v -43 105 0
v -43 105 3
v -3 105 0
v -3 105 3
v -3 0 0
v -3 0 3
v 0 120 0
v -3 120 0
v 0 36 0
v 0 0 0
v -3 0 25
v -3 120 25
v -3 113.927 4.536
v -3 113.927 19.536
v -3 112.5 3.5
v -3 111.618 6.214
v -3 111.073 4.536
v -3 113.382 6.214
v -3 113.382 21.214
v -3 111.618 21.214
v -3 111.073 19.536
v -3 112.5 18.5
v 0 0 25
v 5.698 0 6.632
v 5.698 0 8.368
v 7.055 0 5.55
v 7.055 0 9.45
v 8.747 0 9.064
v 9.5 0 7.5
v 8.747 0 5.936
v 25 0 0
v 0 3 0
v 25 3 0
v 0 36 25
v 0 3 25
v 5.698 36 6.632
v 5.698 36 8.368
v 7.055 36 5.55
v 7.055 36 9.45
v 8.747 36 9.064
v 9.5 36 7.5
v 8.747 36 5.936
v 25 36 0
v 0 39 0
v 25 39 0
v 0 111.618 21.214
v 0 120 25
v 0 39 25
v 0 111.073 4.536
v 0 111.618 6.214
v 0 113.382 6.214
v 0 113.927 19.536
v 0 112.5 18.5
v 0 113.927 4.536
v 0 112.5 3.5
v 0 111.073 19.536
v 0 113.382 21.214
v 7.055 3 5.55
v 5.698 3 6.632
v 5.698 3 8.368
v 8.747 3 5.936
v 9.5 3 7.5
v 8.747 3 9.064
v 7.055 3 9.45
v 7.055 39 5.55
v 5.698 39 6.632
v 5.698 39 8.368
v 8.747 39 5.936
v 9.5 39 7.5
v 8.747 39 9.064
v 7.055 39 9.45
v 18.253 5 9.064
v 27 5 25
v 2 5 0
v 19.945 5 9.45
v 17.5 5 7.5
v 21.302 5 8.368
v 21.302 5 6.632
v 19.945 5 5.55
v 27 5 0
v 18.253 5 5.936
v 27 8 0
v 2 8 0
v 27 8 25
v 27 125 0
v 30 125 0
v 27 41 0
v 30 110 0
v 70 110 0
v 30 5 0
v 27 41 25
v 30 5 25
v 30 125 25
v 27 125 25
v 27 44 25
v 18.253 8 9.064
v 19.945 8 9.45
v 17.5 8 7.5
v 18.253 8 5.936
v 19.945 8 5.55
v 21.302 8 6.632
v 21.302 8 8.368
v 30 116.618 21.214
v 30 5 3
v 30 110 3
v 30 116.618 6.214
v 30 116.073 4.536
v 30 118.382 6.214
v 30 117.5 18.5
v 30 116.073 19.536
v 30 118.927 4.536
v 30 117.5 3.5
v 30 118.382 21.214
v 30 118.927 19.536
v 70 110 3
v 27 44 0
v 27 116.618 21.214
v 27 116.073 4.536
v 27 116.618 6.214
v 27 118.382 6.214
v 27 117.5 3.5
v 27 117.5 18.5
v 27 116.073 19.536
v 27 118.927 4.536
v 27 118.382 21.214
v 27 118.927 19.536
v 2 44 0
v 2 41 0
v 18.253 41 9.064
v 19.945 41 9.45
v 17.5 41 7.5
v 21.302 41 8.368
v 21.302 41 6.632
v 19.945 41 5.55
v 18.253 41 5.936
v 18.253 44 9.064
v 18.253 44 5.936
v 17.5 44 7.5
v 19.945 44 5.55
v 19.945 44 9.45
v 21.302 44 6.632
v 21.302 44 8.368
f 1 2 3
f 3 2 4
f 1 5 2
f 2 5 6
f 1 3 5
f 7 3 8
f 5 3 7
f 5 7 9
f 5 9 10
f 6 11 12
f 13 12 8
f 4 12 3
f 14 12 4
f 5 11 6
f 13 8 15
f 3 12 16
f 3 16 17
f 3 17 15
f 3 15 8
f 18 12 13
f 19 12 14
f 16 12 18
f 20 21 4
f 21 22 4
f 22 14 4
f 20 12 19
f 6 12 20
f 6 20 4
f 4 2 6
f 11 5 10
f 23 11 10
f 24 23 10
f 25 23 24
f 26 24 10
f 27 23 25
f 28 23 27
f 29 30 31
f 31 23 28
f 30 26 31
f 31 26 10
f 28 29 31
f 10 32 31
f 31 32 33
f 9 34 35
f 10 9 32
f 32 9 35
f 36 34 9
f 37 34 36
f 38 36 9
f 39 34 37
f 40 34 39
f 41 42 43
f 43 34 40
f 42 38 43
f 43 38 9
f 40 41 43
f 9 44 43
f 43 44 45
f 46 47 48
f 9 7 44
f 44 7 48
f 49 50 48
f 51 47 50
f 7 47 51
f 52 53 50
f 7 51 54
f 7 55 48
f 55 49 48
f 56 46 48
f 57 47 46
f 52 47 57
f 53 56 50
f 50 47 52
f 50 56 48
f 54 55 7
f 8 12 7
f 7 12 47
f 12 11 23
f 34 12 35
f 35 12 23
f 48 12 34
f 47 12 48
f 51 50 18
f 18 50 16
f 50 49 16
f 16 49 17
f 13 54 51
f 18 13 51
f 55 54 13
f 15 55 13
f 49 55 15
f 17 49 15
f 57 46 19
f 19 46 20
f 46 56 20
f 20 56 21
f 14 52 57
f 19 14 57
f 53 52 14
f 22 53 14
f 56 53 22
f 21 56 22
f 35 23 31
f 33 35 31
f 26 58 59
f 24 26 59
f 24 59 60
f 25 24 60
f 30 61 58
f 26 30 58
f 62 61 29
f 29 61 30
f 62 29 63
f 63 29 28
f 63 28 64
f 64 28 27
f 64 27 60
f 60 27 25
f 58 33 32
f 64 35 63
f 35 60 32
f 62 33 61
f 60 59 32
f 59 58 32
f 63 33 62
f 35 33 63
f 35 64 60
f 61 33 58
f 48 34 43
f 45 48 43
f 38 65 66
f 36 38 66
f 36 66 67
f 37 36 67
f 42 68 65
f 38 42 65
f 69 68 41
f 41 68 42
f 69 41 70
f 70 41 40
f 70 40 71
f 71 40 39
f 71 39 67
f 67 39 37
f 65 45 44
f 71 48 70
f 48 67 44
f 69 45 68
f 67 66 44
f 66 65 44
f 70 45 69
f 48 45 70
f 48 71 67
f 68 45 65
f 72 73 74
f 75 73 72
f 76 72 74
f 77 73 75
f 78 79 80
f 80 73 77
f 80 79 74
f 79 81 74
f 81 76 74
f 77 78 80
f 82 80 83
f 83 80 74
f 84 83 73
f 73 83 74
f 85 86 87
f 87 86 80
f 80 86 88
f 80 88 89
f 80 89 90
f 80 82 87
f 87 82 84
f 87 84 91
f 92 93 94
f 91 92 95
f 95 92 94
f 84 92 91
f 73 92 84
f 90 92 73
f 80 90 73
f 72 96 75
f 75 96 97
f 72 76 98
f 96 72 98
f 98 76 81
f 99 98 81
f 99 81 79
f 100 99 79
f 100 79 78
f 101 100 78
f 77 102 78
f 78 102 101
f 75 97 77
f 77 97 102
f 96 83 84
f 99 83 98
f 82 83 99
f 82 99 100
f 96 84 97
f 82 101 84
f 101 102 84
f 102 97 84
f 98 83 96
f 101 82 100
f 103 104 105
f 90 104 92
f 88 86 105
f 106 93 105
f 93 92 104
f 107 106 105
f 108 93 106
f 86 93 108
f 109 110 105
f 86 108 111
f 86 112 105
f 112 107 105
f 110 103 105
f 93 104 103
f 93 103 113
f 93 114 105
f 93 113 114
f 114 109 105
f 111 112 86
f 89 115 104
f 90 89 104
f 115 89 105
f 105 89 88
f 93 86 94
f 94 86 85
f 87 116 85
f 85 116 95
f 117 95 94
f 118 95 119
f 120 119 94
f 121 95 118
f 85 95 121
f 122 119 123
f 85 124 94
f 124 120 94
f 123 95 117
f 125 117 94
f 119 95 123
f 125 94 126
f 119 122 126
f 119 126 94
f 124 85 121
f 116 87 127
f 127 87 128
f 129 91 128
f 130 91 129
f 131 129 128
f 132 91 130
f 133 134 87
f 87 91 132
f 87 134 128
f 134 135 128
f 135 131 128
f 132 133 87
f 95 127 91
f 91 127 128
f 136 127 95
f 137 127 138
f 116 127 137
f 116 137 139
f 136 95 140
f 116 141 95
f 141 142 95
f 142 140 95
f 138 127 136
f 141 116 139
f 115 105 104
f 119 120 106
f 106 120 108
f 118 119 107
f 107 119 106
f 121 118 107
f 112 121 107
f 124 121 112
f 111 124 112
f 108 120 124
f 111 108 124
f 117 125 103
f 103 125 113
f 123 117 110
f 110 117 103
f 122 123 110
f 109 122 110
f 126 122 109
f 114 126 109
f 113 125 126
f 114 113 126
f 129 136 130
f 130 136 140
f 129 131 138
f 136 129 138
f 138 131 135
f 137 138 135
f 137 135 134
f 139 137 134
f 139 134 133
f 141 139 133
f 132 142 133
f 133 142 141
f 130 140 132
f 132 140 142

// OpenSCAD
//cube([20,50,4]);
//gusset
module gusset(s1,s2,t)
{
	intersection()
	{
		cube([s1,s2,t]);
		rotate([0,0,atan(s2/s1)]) translate([0,0,-1]) cube([s1+s2,s1+s2,t+2]);
	}
}

module bracket() difference()
{
	gusset(25,25,3);
	translate([7.5,25-7.5,-1]) cylinder(r=2,h=5,$fa=1);
}

module assembly()
{
	translate([0,0,25]) rotate([-90,0,0]) bracket();
	translate([0,36,25]) rotate([-90,0,0]) bracket();
	difference()
	{
		translate([-3,0,0]) cube([3,120,25]);
		translate([-4,112.5,5]) rotate([0,90,0]) cylinder(r=1.5,h=5,$fa=1);
		translate([-4,112.5,20]) rotate([0,90,0]) cylinder(r=1.5,h=5,$fa=1);
	}
	translate([-43,105,0]) rotate([0,0,-90]) gusset(105,40,3);
}

assembly();
translate([27,5,0]) mirror([1,0,0]) assembly();
